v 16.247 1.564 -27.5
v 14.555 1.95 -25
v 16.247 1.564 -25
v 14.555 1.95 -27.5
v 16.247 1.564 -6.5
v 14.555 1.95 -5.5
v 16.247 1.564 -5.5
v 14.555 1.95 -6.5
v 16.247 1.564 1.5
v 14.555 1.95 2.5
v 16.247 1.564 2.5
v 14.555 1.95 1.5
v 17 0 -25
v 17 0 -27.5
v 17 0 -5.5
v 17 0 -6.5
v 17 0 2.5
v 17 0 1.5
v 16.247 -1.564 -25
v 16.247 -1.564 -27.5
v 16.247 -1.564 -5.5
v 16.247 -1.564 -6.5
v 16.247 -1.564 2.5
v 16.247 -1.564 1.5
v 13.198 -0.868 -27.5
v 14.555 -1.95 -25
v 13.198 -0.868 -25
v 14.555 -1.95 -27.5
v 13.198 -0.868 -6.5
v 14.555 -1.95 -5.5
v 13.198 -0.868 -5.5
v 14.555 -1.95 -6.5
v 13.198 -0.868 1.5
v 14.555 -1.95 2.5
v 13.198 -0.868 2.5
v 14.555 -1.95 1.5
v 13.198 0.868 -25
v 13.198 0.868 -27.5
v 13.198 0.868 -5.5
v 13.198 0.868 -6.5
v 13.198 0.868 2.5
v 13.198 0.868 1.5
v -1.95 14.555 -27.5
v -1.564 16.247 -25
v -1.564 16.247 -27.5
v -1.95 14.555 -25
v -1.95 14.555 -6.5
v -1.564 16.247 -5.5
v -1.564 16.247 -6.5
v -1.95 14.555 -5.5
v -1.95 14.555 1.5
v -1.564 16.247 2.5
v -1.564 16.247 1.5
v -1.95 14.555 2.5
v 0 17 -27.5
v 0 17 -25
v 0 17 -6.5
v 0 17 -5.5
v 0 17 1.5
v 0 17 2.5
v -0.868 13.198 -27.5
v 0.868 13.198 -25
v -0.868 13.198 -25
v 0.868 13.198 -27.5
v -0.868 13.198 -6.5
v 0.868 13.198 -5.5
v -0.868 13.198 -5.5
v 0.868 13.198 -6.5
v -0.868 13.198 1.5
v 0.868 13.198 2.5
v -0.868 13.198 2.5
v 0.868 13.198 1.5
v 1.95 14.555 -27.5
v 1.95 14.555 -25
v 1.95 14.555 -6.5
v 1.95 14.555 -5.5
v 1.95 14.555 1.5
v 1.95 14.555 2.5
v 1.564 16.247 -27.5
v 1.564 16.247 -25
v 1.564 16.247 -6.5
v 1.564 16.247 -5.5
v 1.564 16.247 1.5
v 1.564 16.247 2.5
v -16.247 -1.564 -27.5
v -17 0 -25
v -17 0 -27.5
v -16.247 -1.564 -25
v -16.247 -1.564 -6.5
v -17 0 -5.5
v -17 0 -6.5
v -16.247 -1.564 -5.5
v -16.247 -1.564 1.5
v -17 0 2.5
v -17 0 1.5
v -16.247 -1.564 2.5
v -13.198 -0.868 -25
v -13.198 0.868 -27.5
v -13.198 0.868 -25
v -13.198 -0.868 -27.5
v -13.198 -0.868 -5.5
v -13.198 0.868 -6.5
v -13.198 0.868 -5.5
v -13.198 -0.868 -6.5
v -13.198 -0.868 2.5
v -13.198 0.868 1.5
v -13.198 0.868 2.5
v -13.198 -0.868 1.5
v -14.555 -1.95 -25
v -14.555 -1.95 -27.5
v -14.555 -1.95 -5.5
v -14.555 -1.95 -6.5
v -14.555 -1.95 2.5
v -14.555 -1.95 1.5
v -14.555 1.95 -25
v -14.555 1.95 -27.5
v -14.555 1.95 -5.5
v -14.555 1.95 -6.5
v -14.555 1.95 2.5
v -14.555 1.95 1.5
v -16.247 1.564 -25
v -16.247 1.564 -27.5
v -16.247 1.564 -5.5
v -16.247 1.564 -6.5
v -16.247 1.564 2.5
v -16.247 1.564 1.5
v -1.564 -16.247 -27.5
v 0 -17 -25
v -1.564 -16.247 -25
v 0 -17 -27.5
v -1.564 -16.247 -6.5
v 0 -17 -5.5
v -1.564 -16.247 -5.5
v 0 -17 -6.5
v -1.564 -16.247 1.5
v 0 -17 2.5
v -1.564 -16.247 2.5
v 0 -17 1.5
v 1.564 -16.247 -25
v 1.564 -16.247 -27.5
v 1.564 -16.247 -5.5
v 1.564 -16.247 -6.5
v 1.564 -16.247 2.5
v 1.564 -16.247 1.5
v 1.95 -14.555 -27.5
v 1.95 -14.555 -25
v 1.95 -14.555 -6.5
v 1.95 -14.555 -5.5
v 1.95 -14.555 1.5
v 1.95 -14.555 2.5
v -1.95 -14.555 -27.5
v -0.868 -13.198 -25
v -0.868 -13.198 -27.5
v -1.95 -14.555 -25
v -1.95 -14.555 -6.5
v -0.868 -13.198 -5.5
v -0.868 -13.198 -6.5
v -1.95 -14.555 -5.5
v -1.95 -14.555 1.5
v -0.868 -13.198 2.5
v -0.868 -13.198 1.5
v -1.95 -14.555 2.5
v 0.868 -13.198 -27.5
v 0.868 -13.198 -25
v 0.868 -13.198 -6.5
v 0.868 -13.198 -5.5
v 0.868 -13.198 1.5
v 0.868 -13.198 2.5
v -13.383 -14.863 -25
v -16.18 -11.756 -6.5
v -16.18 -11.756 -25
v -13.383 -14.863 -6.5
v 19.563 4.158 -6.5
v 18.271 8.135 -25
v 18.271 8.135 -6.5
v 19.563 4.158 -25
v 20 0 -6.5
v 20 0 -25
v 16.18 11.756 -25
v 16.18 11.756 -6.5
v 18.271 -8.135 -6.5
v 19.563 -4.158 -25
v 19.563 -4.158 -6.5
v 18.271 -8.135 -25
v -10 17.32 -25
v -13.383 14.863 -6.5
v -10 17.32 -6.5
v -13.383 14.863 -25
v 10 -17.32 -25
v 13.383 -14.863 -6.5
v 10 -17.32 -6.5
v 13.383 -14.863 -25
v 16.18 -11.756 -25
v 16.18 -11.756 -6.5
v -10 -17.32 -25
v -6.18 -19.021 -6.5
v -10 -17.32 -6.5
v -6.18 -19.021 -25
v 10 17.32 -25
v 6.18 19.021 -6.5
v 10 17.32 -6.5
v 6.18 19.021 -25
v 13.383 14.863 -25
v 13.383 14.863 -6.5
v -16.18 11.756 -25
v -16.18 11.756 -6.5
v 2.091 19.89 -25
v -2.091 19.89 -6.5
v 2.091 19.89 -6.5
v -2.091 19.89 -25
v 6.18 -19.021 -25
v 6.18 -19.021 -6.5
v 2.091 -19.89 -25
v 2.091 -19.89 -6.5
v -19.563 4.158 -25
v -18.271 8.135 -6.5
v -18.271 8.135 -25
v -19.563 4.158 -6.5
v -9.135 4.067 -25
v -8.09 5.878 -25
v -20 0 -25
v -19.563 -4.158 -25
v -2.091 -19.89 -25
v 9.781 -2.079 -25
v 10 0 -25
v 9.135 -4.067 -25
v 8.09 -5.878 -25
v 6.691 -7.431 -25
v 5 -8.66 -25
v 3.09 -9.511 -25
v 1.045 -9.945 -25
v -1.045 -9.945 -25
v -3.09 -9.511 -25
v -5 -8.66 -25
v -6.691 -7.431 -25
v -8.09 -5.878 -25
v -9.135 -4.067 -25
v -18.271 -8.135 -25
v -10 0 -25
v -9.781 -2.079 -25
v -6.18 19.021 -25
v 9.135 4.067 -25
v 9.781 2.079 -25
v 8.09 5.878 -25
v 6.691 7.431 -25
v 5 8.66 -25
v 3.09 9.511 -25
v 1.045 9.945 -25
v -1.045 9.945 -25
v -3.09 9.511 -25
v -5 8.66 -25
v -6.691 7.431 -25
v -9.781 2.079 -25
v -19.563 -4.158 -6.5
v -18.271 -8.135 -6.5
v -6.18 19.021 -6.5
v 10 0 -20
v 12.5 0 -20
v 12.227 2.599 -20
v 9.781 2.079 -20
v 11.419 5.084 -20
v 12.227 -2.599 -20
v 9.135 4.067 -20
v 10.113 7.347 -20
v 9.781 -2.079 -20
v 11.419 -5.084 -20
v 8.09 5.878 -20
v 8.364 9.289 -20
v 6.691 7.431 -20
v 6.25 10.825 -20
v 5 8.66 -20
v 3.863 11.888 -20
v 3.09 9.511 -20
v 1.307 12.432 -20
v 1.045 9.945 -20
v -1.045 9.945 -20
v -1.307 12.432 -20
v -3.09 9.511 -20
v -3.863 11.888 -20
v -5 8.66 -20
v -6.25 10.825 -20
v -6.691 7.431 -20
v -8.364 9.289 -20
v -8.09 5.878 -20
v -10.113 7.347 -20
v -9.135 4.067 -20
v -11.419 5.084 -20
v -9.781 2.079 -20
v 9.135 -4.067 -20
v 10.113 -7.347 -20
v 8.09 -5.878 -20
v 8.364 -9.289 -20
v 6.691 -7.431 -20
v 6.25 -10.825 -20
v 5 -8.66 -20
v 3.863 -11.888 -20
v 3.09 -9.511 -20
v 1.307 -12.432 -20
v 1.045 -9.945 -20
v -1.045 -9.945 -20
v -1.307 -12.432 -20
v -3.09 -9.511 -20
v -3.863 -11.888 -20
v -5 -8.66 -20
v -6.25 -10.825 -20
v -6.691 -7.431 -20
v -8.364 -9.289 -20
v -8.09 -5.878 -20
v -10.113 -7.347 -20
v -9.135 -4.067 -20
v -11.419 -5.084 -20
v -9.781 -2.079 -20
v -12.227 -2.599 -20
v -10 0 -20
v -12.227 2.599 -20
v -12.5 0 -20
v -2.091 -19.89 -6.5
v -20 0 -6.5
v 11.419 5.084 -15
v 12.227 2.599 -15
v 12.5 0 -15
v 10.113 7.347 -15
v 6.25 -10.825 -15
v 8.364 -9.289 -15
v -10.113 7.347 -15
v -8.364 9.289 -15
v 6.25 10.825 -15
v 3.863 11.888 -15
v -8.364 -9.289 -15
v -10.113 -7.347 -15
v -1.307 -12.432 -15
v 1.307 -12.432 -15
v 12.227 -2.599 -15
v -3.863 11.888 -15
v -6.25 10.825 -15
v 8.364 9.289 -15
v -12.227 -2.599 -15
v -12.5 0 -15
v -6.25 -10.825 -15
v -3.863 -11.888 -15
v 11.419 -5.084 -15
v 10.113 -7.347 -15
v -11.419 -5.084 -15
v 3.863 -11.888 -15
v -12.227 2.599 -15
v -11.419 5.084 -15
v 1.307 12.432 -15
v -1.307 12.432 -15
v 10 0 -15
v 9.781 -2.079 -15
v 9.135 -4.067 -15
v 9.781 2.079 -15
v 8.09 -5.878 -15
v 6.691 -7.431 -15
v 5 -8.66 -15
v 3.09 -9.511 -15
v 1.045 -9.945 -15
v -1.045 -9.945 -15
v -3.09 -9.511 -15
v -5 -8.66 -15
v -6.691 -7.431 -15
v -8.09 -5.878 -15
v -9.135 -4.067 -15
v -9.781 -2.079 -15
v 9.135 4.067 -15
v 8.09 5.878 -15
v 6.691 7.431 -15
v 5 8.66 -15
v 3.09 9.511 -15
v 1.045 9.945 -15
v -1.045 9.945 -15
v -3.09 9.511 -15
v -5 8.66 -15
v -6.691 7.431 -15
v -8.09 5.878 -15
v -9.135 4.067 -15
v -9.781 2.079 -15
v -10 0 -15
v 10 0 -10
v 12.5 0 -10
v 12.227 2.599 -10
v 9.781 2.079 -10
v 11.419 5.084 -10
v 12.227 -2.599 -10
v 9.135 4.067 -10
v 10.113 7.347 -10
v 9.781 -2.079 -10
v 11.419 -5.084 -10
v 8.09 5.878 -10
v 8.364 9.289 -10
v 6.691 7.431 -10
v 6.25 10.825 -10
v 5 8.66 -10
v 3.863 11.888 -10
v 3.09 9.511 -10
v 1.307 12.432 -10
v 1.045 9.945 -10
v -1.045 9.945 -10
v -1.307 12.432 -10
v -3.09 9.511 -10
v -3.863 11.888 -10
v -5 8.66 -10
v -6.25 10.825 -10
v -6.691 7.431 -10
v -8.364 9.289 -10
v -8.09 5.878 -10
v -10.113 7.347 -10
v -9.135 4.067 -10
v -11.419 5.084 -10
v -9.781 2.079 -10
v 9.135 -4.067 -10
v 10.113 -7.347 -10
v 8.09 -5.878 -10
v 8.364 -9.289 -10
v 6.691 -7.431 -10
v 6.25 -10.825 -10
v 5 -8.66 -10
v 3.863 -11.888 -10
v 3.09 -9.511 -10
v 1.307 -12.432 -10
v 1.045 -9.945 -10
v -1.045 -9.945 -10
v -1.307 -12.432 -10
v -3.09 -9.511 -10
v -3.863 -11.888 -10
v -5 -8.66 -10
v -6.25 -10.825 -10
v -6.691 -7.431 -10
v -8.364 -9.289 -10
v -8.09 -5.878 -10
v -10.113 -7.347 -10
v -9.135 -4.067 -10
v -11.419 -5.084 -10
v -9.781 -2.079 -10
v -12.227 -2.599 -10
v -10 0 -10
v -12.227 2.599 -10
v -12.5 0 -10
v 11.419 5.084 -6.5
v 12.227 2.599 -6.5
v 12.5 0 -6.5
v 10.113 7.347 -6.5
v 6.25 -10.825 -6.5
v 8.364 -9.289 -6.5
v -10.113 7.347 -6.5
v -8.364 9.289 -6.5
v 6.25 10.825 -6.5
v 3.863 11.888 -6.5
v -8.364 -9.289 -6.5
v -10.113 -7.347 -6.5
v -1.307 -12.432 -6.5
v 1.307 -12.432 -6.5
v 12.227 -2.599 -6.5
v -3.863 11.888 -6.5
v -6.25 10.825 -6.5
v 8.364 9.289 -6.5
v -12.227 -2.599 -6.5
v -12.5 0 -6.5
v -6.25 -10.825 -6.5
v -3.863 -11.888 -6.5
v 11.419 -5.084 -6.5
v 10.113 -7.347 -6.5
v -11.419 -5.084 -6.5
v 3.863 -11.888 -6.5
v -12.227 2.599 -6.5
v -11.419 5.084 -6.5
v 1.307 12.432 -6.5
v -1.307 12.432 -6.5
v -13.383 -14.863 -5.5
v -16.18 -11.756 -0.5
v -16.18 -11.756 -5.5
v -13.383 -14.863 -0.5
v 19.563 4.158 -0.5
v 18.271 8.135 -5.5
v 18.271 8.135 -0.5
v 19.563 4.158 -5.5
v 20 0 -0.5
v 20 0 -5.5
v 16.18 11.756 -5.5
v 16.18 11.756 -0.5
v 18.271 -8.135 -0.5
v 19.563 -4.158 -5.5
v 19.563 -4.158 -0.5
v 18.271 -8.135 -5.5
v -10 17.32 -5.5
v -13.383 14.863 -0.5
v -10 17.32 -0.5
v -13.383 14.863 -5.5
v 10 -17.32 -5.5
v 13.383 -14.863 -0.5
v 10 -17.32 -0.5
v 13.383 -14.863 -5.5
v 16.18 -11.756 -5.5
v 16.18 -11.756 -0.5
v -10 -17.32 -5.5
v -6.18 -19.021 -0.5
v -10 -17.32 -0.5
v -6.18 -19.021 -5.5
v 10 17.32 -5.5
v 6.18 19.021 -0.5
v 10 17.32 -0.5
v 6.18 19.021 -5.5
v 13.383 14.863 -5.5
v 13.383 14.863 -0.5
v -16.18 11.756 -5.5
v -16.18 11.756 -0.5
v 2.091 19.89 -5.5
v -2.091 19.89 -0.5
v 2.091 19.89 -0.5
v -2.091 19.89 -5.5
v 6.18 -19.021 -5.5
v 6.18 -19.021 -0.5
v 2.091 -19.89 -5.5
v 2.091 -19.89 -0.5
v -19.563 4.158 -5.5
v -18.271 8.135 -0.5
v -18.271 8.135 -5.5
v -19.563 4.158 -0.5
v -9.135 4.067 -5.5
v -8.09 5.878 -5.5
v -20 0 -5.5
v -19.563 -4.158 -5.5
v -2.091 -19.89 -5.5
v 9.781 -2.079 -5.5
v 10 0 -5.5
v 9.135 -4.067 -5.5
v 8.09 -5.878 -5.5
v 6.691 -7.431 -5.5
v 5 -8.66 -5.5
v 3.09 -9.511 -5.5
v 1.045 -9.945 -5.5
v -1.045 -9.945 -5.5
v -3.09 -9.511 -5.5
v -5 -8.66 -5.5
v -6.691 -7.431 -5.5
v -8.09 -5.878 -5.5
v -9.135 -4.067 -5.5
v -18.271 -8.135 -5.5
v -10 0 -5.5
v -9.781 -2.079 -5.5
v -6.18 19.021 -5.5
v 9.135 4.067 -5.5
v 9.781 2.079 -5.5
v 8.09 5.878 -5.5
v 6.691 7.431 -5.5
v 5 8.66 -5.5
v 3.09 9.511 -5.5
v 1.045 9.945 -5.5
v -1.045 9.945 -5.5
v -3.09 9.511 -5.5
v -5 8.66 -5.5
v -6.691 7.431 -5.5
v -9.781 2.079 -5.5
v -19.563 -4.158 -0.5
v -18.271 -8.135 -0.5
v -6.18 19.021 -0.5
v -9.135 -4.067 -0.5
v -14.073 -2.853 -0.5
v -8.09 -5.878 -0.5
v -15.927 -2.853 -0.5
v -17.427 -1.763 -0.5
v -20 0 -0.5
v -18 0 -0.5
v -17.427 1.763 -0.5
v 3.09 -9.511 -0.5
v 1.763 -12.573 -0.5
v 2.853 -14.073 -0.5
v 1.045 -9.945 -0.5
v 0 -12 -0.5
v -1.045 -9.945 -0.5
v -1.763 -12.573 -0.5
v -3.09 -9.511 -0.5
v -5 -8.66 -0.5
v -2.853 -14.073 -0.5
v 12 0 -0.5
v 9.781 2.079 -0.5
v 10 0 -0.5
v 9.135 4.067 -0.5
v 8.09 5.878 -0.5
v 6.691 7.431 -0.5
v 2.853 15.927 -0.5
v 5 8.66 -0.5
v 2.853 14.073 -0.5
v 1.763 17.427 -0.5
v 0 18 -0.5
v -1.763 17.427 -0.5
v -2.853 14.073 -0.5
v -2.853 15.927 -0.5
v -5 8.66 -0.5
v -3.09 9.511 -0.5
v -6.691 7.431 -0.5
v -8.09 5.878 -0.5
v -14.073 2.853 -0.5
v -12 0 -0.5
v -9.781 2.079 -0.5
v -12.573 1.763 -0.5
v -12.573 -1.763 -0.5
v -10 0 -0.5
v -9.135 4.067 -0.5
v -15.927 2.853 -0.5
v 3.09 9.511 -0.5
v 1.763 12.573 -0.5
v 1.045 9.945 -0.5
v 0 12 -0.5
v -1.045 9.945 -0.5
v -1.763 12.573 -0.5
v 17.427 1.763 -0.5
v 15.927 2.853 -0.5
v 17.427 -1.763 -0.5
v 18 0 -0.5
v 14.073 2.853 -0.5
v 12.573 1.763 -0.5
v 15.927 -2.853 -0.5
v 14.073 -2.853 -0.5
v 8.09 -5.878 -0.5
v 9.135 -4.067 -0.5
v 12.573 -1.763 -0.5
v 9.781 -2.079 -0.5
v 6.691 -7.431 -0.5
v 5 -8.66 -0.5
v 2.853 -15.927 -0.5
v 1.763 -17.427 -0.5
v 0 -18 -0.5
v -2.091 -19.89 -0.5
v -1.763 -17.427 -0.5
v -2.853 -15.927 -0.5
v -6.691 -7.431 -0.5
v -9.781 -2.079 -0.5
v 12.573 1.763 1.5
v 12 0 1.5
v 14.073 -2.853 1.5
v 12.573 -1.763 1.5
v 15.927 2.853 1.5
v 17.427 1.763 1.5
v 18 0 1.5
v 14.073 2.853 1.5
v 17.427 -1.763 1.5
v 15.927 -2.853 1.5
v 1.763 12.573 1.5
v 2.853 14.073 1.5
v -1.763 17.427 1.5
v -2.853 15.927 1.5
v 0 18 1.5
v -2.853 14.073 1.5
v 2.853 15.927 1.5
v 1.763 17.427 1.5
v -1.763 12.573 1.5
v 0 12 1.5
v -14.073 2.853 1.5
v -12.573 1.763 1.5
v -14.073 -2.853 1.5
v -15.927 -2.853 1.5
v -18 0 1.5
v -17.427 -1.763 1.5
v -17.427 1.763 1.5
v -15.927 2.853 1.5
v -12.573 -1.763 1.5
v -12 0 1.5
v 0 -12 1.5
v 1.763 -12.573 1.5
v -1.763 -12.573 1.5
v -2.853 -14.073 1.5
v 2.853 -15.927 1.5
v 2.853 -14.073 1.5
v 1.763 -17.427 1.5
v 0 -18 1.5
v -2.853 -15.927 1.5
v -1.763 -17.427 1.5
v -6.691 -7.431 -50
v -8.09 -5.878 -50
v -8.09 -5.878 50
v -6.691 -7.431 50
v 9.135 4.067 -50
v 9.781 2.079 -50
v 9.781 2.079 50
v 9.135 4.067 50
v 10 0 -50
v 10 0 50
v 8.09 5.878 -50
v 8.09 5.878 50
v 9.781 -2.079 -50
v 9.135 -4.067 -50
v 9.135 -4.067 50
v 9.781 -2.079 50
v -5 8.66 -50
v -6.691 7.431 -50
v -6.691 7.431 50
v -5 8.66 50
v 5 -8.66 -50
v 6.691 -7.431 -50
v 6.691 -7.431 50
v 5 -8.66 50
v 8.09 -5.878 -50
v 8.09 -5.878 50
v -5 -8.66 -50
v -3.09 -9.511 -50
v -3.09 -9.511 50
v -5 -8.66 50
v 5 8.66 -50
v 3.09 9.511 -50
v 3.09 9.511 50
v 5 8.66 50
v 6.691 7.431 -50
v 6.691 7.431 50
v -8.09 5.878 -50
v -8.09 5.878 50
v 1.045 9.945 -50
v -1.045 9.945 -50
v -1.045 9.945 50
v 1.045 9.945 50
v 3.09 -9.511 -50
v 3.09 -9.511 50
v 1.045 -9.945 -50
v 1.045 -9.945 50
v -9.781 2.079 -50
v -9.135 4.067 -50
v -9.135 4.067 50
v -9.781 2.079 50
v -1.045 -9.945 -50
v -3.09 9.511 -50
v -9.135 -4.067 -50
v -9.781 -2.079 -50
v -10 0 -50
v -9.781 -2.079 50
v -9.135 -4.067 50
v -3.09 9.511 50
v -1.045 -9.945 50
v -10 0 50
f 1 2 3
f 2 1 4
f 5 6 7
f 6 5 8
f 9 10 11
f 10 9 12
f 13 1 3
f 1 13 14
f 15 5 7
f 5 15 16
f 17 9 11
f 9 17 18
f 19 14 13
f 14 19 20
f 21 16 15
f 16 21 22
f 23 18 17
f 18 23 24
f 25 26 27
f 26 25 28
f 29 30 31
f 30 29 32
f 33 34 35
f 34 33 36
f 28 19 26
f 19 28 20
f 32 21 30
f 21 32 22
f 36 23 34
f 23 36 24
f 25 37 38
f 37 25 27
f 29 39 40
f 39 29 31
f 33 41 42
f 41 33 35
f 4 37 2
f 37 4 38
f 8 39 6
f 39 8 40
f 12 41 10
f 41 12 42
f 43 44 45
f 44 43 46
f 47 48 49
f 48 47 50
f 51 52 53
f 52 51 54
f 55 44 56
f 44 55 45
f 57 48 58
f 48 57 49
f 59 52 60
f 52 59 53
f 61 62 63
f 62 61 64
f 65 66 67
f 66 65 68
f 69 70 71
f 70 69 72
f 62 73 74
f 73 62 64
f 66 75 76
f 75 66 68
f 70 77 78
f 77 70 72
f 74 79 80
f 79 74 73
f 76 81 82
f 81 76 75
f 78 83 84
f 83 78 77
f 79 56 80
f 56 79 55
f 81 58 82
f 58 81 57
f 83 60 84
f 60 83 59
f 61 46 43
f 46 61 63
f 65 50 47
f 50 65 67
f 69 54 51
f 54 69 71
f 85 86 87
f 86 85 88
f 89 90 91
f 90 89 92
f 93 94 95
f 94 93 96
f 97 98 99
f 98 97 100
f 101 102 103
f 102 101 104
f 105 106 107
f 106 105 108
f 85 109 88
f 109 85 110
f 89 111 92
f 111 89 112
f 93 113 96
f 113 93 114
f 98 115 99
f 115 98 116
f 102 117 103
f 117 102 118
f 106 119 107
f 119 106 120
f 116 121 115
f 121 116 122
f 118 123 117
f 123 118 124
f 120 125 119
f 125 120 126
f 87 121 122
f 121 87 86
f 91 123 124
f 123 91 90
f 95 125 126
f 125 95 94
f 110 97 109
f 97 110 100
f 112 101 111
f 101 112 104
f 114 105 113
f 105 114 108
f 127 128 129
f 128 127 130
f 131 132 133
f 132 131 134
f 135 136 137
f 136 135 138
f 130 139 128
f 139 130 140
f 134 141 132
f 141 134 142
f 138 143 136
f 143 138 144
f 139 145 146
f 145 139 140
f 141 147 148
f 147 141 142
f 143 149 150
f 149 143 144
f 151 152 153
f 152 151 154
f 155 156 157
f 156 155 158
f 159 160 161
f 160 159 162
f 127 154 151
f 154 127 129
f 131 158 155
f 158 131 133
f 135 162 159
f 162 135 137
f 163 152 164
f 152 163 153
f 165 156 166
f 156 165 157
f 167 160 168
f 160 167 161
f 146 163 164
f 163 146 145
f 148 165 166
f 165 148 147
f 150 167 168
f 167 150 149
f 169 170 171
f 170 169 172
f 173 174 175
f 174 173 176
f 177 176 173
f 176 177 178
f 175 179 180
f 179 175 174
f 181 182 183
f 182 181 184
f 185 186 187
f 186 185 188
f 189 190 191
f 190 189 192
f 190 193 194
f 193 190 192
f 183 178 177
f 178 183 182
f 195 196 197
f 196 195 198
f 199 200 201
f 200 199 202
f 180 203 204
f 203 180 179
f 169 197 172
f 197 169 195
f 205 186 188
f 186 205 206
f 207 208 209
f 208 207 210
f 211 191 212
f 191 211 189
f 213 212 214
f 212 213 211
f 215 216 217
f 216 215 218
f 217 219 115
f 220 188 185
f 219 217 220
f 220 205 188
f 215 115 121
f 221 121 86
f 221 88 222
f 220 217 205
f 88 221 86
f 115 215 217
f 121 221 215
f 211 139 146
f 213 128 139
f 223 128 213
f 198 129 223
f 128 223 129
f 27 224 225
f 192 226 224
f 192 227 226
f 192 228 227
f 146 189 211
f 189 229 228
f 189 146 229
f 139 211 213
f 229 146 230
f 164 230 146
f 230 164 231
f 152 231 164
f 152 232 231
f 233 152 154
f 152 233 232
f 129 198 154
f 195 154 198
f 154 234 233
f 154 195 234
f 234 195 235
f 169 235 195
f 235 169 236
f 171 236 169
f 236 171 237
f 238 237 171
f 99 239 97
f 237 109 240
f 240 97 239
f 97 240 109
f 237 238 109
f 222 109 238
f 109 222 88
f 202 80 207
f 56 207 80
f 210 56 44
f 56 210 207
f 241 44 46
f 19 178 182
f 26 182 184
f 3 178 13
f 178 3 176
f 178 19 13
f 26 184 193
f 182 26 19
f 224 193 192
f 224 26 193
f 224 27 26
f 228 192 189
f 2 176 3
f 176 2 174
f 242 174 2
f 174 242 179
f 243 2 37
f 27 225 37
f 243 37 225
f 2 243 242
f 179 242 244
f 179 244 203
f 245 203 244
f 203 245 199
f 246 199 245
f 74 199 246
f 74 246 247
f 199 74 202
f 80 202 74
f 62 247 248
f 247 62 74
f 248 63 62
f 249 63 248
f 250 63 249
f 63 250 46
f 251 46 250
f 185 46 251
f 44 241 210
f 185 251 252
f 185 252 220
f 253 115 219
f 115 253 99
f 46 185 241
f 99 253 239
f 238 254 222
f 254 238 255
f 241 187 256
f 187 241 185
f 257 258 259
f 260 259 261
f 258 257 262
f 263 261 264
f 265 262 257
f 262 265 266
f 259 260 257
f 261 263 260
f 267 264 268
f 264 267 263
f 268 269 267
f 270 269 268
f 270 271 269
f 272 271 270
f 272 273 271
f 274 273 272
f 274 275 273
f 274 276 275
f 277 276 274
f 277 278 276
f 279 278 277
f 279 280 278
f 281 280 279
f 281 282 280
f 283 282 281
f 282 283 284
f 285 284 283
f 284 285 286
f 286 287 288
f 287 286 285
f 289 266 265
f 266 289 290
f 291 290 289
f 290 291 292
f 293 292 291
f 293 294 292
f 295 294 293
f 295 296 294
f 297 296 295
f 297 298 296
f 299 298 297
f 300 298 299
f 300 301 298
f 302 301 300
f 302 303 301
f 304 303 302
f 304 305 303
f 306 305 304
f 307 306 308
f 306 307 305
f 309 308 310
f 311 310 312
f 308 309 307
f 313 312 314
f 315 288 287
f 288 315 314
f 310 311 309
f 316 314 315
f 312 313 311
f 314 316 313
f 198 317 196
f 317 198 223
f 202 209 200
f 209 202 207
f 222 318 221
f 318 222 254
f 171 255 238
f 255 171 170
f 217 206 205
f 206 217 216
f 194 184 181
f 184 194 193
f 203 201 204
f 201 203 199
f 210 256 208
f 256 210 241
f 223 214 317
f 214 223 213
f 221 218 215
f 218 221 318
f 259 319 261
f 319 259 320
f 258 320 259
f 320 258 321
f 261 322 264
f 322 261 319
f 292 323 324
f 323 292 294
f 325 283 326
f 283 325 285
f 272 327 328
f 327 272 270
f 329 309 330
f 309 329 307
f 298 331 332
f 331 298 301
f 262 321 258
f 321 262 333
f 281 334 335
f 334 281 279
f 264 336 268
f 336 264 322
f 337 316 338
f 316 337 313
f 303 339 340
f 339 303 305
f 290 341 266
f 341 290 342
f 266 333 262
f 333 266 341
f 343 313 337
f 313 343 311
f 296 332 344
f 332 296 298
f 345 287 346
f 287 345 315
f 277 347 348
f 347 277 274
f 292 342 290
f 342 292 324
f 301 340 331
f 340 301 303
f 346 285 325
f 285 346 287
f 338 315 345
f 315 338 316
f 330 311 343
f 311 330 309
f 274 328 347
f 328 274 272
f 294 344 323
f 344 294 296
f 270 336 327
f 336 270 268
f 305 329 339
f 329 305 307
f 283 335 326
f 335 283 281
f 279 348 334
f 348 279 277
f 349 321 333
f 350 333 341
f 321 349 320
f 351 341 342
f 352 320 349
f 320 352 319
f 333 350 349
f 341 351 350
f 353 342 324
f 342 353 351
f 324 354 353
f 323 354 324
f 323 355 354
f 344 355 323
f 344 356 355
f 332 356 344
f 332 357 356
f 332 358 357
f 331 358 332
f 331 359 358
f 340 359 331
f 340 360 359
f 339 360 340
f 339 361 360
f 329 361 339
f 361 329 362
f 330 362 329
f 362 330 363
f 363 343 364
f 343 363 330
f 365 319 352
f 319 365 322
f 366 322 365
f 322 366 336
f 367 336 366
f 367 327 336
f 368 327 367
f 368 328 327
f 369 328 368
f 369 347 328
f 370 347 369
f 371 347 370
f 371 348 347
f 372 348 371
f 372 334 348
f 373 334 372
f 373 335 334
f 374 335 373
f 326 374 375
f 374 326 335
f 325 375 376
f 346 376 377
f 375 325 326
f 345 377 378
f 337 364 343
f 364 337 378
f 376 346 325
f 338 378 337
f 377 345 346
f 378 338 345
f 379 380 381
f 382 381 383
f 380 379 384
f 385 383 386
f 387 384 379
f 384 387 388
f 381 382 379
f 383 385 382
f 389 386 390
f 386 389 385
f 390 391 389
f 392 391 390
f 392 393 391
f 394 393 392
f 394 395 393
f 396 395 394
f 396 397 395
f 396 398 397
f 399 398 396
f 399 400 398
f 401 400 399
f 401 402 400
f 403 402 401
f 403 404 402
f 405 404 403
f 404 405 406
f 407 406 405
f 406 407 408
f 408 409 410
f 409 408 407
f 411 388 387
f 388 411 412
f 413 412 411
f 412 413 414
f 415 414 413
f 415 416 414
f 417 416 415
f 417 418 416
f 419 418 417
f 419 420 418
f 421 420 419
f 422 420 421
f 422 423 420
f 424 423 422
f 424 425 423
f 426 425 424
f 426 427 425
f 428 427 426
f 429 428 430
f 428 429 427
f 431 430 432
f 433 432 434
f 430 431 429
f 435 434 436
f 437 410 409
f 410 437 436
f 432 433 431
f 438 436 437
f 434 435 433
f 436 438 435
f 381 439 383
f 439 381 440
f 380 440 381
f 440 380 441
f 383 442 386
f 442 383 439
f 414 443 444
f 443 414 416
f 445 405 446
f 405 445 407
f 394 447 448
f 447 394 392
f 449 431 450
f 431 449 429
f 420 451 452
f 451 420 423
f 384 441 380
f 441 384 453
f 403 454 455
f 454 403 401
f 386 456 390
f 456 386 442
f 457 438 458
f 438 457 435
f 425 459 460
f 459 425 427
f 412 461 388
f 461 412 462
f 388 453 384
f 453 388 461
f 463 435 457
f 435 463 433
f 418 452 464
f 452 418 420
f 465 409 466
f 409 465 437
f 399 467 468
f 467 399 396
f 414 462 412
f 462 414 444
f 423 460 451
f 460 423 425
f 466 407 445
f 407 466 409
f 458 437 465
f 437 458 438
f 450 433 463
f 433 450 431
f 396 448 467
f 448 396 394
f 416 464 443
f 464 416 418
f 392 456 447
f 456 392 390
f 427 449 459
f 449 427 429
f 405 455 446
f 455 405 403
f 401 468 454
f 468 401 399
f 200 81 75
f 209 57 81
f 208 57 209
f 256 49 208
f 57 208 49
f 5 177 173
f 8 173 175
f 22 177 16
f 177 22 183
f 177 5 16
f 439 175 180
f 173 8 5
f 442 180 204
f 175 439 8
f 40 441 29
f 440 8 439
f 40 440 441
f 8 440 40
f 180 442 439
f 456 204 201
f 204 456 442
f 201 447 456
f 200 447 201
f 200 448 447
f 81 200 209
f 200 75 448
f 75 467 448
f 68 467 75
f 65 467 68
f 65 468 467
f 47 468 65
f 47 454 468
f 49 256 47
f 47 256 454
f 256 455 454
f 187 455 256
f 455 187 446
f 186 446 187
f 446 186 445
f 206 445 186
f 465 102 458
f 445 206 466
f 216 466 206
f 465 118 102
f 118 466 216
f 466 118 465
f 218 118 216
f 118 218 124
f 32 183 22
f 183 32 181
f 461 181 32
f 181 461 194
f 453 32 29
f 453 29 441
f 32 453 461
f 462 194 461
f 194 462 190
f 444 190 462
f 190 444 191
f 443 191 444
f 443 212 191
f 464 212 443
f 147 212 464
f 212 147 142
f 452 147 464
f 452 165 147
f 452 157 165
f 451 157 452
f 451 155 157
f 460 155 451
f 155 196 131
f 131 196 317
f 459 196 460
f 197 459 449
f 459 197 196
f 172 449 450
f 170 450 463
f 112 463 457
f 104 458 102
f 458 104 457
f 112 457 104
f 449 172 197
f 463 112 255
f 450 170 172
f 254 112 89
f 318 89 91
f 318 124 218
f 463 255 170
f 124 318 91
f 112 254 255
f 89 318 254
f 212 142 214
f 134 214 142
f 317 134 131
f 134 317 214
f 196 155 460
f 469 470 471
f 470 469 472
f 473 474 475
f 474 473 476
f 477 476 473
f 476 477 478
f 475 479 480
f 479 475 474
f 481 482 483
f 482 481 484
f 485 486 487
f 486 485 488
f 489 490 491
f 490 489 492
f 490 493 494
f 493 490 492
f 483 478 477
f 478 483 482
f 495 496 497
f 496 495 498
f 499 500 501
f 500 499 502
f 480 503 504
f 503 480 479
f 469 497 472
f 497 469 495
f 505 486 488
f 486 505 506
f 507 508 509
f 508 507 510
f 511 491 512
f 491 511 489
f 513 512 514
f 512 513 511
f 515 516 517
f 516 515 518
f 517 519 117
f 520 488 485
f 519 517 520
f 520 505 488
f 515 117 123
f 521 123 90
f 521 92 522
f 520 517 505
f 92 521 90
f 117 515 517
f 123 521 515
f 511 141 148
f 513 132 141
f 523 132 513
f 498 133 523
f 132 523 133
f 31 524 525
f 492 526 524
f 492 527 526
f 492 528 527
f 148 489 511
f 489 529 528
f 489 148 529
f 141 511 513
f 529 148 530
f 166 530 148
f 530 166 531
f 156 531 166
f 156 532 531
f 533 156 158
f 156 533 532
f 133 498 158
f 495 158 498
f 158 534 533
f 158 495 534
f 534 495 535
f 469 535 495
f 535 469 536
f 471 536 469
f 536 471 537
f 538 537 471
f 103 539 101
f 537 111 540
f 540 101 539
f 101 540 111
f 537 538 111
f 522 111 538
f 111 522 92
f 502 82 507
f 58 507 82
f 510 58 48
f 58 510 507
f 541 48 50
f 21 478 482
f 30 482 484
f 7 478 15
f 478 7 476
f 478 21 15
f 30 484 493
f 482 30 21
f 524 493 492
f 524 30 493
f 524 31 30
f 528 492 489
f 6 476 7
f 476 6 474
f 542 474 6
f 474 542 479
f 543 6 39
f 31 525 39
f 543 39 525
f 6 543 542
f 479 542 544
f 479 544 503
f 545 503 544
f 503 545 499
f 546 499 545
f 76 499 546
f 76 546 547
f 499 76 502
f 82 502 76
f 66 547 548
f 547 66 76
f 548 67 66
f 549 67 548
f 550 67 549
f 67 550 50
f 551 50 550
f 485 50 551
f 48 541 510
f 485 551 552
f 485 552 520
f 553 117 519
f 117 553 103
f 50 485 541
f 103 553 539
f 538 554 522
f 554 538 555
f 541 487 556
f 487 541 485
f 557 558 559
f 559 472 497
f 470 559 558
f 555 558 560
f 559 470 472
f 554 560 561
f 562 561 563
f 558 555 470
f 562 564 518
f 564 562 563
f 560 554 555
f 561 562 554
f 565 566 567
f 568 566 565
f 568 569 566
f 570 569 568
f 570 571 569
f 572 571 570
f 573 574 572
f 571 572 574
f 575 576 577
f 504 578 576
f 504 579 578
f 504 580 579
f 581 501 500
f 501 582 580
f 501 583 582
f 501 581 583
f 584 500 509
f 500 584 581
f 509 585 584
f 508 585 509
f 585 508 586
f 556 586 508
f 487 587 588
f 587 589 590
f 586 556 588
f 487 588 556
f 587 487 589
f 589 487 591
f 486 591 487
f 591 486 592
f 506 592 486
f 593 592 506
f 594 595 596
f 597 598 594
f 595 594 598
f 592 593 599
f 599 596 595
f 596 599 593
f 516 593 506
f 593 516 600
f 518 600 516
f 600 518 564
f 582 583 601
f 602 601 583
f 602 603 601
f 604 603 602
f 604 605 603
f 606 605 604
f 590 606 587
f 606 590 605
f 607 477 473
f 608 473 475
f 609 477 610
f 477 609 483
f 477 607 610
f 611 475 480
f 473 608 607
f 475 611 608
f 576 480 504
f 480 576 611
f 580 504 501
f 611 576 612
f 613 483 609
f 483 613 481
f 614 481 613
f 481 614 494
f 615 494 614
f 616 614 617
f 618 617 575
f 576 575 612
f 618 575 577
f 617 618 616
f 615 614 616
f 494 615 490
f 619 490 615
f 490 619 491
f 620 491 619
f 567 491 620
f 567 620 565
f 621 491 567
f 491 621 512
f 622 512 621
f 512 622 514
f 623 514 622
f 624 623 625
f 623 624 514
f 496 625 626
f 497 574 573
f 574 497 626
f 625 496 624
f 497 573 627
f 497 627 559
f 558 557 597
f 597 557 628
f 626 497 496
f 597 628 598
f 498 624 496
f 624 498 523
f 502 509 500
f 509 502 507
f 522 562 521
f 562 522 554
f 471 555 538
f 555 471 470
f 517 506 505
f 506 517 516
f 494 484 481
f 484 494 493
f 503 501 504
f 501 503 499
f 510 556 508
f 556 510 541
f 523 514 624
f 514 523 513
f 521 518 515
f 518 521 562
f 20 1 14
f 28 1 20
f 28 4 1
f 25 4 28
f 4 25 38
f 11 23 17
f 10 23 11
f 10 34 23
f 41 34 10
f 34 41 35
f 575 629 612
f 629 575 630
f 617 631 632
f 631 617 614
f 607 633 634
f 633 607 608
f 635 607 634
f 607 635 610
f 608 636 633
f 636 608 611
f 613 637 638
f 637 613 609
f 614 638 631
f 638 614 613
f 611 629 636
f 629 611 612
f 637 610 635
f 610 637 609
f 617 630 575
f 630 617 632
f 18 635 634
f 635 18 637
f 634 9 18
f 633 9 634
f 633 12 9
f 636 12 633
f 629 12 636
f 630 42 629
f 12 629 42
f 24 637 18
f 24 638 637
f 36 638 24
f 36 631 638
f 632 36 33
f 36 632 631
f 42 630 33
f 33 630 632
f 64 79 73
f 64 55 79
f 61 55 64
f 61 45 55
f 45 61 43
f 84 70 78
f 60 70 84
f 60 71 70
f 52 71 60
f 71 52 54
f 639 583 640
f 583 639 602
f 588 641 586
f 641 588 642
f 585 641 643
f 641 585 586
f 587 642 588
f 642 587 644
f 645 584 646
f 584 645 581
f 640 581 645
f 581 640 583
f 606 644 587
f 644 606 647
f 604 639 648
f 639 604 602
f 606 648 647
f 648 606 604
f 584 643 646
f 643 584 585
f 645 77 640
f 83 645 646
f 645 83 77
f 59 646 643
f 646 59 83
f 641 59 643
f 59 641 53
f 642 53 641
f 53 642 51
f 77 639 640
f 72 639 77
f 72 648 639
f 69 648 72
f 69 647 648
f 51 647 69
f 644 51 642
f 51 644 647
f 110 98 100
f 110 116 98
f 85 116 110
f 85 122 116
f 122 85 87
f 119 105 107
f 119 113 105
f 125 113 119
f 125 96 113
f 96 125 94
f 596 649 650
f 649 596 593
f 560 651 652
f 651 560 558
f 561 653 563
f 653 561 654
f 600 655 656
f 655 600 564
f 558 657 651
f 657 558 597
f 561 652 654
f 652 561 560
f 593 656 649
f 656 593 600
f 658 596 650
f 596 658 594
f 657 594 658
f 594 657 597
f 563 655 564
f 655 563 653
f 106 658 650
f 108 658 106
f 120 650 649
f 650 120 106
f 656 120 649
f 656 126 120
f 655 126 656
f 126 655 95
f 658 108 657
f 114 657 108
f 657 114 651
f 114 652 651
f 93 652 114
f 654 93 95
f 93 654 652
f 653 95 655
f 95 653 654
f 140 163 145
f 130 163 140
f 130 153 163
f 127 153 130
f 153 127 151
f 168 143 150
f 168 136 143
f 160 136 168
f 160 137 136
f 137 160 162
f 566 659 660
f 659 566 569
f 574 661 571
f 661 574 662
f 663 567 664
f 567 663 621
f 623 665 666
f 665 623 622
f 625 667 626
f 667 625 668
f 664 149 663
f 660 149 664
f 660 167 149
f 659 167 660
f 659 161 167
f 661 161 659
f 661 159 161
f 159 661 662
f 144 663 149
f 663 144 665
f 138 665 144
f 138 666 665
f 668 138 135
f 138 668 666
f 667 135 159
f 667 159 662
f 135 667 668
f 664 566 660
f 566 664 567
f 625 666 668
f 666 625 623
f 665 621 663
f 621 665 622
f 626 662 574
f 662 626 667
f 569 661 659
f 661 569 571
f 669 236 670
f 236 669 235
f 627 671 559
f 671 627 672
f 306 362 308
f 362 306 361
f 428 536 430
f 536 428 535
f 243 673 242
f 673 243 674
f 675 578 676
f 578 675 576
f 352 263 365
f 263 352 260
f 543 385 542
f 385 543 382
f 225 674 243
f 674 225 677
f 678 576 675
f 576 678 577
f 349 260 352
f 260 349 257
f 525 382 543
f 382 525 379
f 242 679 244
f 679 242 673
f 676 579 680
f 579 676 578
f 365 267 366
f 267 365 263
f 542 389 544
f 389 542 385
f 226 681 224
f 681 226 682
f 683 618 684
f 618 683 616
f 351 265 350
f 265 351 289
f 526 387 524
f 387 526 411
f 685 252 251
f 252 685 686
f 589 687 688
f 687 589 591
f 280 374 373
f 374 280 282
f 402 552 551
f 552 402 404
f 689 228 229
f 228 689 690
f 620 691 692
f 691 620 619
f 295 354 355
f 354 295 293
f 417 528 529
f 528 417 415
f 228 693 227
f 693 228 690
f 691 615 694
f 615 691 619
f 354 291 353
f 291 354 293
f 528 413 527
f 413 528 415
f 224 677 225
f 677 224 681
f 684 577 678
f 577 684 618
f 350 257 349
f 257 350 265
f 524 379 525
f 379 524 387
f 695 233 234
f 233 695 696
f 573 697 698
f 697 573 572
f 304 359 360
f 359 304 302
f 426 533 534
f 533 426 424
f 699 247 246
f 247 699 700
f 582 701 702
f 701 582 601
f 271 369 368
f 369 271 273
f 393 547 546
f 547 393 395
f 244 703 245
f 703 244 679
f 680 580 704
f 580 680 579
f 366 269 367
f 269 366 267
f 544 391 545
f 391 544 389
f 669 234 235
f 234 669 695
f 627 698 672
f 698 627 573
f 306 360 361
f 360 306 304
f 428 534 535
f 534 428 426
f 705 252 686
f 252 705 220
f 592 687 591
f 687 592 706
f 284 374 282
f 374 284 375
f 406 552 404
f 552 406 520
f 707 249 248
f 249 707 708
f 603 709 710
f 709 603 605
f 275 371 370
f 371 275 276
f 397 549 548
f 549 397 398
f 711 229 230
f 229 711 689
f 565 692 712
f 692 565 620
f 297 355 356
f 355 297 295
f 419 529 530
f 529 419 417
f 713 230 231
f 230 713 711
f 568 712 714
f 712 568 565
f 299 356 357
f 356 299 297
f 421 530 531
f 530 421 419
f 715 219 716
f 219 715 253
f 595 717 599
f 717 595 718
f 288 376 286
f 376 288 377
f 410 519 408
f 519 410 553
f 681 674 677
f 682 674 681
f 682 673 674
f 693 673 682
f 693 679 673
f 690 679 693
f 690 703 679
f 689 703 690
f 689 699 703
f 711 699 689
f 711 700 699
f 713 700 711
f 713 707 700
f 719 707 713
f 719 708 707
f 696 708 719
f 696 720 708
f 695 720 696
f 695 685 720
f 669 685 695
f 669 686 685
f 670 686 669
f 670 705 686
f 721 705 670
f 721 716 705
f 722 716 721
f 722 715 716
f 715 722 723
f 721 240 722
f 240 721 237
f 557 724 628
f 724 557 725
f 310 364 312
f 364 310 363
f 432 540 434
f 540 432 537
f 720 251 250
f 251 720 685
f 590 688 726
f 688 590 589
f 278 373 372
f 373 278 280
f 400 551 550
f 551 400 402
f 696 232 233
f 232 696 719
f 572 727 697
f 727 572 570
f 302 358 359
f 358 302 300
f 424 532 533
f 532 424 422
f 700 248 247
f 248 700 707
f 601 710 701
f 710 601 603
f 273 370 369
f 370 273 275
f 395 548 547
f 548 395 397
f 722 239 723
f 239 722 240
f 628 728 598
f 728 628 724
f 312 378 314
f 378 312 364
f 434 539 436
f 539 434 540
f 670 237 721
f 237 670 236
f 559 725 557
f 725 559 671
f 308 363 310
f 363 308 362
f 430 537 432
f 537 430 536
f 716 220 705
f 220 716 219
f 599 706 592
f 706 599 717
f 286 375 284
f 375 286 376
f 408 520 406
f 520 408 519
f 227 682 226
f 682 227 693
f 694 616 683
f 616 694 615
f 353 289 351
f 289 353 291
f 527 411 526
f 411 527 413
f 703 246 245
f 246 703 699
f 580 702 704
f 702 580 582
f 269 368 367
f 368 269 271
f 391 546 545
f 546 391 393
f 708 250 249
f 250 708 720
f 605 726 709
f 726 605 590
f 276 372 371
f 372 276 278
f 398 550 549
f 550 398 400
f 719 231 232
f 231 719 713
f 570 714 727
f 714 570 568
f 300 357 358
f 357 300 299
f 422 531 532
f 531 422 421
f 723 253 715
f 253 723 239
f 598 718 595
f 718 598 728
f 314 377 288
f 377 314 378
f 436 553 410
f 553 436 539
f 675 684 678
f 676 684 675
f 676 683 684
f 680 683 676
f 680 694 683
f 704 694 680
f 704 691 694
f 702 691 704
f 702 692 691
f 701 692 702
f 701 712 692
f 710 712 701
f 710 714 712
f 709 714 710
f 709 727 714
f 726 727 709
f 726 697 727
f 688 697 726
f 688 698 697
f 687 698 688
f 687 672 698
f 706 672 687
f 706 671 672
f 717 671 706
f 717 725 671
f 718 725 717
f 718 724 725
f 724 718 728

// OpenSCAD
// Parameters
shaft_diameter = 20;
shaft_length = 50;
flange_diameter = 40;
flange_thickness = 5;
spacer_thickness = 2;
flexible_element_thickness = 3;
bolt_diameter = 4;
bolt_length = 15;
nut_diameter = 6;
nut_thickness = 3;
bolt_spacing = 30;

// Modules
module shaft() {
    cylinder(h = shaft_length, d = shaft_diameter, center = true);
}

module flange_plate() {
    difference() {
        cylinder(h = flange_thickness, d = flange_diameter, center = true);
        for (i = [0:3]) {
            rotate([0, 0, i * 90])
                translate([bolt_spacing / 2, 0, 0])
                cylinder(h = flange_thickness + 1, d = bolt_diameter, center = true);
        }
    }
}

module spacer_ring() {
    difference() {
        cylinder(h = spacer_thickness, d = flange_diameter, center = true);
        cylinder(h = spacer_thickness + 1, d = shaft_diameter + 5, center = true);
    }
}

module flexible_element() {
    difference() {
        cylinder(h = flexible_element_thickness, d = flange_diameter, center = true);
        cylinder(h = flexible_element_thickness + 1, d = shaft_diameter + 5, center = true);
    }
}

module bolt() {
    cylinder(h = bolt_length, d = bolt_diameter, center = true);
}

module nut() {
    cylinder(h = nut_thickness, d = nut_diameter, center = true);
}

// Assembly
module coupling() {
    translate([0, 0, -shaft_length / 2]) shaft();
    
    translate([0, 0, -shaft_length / 2 + flange_thickness / 2]) flange_plate();
    
    translate([0, 0, -shaft_length / 2 + flange_thickness + spacer_thickness / 2]) spacer_ring();
    
    translate([0, 0, -shaft_length / 2 + flange_thickness + spacer_thickness + flexible_element_thickness / 2]) flexible_element();
    
    translate([0, 0, -shaft_length / 2 + flange_thickness + spacer_thickness + flexible_element_thickness + flange_thickness / 2]) flange_plate();
    
    translate([0, 0, -shaft_length / 2 + flange_thickness * 2 + spacer_thickness + flexible_element_thickness + spacer_thickness / 2]) spacer_ring();
    
    translate([0, 0, -shaft_length / 2 + flange_thickness * 2 + spacer_thickness * 2 + flexible_element_thickness * 2 / 2]) flexible_element();
    
    translate([0, 0, -shaft_length / 2 + flange_thickness * 3 + spacer_thickness * 2 + flexible_element_thickness * 2 / 2]) flange_plate();
    
    translate([0, 0, shaft_length / 2]) shaft();
    
    for (i = [0:3]) {
        rotate([0, 0, i * 90])
            translate([bolt_spacing / 2, 0, -shaft_length / 2 + flange_thickness])
            bolt();
        
        rotate([0, 0, i * 90])
            translate([bolt_spacing / 2, 0, -shaft_length / 2 + flange_thickness * 2 + spacer_thickness * 2 + flexible_element_thickness * 2])
            bolt();
        
        rotate([0, 0, i * 90])
            translate([bolt_spacing / 2, 0, -shaft_length / 2 + flange_thickness / 2])
            nut();
        
        rotate([0, 0, i * 90])
            translate([bolt_spacing / 2, 0, -shaft_length / 2 + flange_thickness * 3 + spacer_thickness * 2 + flexible_element_thickness * 2])
            nut();
    }
}

// Render the coupling
coupling();
